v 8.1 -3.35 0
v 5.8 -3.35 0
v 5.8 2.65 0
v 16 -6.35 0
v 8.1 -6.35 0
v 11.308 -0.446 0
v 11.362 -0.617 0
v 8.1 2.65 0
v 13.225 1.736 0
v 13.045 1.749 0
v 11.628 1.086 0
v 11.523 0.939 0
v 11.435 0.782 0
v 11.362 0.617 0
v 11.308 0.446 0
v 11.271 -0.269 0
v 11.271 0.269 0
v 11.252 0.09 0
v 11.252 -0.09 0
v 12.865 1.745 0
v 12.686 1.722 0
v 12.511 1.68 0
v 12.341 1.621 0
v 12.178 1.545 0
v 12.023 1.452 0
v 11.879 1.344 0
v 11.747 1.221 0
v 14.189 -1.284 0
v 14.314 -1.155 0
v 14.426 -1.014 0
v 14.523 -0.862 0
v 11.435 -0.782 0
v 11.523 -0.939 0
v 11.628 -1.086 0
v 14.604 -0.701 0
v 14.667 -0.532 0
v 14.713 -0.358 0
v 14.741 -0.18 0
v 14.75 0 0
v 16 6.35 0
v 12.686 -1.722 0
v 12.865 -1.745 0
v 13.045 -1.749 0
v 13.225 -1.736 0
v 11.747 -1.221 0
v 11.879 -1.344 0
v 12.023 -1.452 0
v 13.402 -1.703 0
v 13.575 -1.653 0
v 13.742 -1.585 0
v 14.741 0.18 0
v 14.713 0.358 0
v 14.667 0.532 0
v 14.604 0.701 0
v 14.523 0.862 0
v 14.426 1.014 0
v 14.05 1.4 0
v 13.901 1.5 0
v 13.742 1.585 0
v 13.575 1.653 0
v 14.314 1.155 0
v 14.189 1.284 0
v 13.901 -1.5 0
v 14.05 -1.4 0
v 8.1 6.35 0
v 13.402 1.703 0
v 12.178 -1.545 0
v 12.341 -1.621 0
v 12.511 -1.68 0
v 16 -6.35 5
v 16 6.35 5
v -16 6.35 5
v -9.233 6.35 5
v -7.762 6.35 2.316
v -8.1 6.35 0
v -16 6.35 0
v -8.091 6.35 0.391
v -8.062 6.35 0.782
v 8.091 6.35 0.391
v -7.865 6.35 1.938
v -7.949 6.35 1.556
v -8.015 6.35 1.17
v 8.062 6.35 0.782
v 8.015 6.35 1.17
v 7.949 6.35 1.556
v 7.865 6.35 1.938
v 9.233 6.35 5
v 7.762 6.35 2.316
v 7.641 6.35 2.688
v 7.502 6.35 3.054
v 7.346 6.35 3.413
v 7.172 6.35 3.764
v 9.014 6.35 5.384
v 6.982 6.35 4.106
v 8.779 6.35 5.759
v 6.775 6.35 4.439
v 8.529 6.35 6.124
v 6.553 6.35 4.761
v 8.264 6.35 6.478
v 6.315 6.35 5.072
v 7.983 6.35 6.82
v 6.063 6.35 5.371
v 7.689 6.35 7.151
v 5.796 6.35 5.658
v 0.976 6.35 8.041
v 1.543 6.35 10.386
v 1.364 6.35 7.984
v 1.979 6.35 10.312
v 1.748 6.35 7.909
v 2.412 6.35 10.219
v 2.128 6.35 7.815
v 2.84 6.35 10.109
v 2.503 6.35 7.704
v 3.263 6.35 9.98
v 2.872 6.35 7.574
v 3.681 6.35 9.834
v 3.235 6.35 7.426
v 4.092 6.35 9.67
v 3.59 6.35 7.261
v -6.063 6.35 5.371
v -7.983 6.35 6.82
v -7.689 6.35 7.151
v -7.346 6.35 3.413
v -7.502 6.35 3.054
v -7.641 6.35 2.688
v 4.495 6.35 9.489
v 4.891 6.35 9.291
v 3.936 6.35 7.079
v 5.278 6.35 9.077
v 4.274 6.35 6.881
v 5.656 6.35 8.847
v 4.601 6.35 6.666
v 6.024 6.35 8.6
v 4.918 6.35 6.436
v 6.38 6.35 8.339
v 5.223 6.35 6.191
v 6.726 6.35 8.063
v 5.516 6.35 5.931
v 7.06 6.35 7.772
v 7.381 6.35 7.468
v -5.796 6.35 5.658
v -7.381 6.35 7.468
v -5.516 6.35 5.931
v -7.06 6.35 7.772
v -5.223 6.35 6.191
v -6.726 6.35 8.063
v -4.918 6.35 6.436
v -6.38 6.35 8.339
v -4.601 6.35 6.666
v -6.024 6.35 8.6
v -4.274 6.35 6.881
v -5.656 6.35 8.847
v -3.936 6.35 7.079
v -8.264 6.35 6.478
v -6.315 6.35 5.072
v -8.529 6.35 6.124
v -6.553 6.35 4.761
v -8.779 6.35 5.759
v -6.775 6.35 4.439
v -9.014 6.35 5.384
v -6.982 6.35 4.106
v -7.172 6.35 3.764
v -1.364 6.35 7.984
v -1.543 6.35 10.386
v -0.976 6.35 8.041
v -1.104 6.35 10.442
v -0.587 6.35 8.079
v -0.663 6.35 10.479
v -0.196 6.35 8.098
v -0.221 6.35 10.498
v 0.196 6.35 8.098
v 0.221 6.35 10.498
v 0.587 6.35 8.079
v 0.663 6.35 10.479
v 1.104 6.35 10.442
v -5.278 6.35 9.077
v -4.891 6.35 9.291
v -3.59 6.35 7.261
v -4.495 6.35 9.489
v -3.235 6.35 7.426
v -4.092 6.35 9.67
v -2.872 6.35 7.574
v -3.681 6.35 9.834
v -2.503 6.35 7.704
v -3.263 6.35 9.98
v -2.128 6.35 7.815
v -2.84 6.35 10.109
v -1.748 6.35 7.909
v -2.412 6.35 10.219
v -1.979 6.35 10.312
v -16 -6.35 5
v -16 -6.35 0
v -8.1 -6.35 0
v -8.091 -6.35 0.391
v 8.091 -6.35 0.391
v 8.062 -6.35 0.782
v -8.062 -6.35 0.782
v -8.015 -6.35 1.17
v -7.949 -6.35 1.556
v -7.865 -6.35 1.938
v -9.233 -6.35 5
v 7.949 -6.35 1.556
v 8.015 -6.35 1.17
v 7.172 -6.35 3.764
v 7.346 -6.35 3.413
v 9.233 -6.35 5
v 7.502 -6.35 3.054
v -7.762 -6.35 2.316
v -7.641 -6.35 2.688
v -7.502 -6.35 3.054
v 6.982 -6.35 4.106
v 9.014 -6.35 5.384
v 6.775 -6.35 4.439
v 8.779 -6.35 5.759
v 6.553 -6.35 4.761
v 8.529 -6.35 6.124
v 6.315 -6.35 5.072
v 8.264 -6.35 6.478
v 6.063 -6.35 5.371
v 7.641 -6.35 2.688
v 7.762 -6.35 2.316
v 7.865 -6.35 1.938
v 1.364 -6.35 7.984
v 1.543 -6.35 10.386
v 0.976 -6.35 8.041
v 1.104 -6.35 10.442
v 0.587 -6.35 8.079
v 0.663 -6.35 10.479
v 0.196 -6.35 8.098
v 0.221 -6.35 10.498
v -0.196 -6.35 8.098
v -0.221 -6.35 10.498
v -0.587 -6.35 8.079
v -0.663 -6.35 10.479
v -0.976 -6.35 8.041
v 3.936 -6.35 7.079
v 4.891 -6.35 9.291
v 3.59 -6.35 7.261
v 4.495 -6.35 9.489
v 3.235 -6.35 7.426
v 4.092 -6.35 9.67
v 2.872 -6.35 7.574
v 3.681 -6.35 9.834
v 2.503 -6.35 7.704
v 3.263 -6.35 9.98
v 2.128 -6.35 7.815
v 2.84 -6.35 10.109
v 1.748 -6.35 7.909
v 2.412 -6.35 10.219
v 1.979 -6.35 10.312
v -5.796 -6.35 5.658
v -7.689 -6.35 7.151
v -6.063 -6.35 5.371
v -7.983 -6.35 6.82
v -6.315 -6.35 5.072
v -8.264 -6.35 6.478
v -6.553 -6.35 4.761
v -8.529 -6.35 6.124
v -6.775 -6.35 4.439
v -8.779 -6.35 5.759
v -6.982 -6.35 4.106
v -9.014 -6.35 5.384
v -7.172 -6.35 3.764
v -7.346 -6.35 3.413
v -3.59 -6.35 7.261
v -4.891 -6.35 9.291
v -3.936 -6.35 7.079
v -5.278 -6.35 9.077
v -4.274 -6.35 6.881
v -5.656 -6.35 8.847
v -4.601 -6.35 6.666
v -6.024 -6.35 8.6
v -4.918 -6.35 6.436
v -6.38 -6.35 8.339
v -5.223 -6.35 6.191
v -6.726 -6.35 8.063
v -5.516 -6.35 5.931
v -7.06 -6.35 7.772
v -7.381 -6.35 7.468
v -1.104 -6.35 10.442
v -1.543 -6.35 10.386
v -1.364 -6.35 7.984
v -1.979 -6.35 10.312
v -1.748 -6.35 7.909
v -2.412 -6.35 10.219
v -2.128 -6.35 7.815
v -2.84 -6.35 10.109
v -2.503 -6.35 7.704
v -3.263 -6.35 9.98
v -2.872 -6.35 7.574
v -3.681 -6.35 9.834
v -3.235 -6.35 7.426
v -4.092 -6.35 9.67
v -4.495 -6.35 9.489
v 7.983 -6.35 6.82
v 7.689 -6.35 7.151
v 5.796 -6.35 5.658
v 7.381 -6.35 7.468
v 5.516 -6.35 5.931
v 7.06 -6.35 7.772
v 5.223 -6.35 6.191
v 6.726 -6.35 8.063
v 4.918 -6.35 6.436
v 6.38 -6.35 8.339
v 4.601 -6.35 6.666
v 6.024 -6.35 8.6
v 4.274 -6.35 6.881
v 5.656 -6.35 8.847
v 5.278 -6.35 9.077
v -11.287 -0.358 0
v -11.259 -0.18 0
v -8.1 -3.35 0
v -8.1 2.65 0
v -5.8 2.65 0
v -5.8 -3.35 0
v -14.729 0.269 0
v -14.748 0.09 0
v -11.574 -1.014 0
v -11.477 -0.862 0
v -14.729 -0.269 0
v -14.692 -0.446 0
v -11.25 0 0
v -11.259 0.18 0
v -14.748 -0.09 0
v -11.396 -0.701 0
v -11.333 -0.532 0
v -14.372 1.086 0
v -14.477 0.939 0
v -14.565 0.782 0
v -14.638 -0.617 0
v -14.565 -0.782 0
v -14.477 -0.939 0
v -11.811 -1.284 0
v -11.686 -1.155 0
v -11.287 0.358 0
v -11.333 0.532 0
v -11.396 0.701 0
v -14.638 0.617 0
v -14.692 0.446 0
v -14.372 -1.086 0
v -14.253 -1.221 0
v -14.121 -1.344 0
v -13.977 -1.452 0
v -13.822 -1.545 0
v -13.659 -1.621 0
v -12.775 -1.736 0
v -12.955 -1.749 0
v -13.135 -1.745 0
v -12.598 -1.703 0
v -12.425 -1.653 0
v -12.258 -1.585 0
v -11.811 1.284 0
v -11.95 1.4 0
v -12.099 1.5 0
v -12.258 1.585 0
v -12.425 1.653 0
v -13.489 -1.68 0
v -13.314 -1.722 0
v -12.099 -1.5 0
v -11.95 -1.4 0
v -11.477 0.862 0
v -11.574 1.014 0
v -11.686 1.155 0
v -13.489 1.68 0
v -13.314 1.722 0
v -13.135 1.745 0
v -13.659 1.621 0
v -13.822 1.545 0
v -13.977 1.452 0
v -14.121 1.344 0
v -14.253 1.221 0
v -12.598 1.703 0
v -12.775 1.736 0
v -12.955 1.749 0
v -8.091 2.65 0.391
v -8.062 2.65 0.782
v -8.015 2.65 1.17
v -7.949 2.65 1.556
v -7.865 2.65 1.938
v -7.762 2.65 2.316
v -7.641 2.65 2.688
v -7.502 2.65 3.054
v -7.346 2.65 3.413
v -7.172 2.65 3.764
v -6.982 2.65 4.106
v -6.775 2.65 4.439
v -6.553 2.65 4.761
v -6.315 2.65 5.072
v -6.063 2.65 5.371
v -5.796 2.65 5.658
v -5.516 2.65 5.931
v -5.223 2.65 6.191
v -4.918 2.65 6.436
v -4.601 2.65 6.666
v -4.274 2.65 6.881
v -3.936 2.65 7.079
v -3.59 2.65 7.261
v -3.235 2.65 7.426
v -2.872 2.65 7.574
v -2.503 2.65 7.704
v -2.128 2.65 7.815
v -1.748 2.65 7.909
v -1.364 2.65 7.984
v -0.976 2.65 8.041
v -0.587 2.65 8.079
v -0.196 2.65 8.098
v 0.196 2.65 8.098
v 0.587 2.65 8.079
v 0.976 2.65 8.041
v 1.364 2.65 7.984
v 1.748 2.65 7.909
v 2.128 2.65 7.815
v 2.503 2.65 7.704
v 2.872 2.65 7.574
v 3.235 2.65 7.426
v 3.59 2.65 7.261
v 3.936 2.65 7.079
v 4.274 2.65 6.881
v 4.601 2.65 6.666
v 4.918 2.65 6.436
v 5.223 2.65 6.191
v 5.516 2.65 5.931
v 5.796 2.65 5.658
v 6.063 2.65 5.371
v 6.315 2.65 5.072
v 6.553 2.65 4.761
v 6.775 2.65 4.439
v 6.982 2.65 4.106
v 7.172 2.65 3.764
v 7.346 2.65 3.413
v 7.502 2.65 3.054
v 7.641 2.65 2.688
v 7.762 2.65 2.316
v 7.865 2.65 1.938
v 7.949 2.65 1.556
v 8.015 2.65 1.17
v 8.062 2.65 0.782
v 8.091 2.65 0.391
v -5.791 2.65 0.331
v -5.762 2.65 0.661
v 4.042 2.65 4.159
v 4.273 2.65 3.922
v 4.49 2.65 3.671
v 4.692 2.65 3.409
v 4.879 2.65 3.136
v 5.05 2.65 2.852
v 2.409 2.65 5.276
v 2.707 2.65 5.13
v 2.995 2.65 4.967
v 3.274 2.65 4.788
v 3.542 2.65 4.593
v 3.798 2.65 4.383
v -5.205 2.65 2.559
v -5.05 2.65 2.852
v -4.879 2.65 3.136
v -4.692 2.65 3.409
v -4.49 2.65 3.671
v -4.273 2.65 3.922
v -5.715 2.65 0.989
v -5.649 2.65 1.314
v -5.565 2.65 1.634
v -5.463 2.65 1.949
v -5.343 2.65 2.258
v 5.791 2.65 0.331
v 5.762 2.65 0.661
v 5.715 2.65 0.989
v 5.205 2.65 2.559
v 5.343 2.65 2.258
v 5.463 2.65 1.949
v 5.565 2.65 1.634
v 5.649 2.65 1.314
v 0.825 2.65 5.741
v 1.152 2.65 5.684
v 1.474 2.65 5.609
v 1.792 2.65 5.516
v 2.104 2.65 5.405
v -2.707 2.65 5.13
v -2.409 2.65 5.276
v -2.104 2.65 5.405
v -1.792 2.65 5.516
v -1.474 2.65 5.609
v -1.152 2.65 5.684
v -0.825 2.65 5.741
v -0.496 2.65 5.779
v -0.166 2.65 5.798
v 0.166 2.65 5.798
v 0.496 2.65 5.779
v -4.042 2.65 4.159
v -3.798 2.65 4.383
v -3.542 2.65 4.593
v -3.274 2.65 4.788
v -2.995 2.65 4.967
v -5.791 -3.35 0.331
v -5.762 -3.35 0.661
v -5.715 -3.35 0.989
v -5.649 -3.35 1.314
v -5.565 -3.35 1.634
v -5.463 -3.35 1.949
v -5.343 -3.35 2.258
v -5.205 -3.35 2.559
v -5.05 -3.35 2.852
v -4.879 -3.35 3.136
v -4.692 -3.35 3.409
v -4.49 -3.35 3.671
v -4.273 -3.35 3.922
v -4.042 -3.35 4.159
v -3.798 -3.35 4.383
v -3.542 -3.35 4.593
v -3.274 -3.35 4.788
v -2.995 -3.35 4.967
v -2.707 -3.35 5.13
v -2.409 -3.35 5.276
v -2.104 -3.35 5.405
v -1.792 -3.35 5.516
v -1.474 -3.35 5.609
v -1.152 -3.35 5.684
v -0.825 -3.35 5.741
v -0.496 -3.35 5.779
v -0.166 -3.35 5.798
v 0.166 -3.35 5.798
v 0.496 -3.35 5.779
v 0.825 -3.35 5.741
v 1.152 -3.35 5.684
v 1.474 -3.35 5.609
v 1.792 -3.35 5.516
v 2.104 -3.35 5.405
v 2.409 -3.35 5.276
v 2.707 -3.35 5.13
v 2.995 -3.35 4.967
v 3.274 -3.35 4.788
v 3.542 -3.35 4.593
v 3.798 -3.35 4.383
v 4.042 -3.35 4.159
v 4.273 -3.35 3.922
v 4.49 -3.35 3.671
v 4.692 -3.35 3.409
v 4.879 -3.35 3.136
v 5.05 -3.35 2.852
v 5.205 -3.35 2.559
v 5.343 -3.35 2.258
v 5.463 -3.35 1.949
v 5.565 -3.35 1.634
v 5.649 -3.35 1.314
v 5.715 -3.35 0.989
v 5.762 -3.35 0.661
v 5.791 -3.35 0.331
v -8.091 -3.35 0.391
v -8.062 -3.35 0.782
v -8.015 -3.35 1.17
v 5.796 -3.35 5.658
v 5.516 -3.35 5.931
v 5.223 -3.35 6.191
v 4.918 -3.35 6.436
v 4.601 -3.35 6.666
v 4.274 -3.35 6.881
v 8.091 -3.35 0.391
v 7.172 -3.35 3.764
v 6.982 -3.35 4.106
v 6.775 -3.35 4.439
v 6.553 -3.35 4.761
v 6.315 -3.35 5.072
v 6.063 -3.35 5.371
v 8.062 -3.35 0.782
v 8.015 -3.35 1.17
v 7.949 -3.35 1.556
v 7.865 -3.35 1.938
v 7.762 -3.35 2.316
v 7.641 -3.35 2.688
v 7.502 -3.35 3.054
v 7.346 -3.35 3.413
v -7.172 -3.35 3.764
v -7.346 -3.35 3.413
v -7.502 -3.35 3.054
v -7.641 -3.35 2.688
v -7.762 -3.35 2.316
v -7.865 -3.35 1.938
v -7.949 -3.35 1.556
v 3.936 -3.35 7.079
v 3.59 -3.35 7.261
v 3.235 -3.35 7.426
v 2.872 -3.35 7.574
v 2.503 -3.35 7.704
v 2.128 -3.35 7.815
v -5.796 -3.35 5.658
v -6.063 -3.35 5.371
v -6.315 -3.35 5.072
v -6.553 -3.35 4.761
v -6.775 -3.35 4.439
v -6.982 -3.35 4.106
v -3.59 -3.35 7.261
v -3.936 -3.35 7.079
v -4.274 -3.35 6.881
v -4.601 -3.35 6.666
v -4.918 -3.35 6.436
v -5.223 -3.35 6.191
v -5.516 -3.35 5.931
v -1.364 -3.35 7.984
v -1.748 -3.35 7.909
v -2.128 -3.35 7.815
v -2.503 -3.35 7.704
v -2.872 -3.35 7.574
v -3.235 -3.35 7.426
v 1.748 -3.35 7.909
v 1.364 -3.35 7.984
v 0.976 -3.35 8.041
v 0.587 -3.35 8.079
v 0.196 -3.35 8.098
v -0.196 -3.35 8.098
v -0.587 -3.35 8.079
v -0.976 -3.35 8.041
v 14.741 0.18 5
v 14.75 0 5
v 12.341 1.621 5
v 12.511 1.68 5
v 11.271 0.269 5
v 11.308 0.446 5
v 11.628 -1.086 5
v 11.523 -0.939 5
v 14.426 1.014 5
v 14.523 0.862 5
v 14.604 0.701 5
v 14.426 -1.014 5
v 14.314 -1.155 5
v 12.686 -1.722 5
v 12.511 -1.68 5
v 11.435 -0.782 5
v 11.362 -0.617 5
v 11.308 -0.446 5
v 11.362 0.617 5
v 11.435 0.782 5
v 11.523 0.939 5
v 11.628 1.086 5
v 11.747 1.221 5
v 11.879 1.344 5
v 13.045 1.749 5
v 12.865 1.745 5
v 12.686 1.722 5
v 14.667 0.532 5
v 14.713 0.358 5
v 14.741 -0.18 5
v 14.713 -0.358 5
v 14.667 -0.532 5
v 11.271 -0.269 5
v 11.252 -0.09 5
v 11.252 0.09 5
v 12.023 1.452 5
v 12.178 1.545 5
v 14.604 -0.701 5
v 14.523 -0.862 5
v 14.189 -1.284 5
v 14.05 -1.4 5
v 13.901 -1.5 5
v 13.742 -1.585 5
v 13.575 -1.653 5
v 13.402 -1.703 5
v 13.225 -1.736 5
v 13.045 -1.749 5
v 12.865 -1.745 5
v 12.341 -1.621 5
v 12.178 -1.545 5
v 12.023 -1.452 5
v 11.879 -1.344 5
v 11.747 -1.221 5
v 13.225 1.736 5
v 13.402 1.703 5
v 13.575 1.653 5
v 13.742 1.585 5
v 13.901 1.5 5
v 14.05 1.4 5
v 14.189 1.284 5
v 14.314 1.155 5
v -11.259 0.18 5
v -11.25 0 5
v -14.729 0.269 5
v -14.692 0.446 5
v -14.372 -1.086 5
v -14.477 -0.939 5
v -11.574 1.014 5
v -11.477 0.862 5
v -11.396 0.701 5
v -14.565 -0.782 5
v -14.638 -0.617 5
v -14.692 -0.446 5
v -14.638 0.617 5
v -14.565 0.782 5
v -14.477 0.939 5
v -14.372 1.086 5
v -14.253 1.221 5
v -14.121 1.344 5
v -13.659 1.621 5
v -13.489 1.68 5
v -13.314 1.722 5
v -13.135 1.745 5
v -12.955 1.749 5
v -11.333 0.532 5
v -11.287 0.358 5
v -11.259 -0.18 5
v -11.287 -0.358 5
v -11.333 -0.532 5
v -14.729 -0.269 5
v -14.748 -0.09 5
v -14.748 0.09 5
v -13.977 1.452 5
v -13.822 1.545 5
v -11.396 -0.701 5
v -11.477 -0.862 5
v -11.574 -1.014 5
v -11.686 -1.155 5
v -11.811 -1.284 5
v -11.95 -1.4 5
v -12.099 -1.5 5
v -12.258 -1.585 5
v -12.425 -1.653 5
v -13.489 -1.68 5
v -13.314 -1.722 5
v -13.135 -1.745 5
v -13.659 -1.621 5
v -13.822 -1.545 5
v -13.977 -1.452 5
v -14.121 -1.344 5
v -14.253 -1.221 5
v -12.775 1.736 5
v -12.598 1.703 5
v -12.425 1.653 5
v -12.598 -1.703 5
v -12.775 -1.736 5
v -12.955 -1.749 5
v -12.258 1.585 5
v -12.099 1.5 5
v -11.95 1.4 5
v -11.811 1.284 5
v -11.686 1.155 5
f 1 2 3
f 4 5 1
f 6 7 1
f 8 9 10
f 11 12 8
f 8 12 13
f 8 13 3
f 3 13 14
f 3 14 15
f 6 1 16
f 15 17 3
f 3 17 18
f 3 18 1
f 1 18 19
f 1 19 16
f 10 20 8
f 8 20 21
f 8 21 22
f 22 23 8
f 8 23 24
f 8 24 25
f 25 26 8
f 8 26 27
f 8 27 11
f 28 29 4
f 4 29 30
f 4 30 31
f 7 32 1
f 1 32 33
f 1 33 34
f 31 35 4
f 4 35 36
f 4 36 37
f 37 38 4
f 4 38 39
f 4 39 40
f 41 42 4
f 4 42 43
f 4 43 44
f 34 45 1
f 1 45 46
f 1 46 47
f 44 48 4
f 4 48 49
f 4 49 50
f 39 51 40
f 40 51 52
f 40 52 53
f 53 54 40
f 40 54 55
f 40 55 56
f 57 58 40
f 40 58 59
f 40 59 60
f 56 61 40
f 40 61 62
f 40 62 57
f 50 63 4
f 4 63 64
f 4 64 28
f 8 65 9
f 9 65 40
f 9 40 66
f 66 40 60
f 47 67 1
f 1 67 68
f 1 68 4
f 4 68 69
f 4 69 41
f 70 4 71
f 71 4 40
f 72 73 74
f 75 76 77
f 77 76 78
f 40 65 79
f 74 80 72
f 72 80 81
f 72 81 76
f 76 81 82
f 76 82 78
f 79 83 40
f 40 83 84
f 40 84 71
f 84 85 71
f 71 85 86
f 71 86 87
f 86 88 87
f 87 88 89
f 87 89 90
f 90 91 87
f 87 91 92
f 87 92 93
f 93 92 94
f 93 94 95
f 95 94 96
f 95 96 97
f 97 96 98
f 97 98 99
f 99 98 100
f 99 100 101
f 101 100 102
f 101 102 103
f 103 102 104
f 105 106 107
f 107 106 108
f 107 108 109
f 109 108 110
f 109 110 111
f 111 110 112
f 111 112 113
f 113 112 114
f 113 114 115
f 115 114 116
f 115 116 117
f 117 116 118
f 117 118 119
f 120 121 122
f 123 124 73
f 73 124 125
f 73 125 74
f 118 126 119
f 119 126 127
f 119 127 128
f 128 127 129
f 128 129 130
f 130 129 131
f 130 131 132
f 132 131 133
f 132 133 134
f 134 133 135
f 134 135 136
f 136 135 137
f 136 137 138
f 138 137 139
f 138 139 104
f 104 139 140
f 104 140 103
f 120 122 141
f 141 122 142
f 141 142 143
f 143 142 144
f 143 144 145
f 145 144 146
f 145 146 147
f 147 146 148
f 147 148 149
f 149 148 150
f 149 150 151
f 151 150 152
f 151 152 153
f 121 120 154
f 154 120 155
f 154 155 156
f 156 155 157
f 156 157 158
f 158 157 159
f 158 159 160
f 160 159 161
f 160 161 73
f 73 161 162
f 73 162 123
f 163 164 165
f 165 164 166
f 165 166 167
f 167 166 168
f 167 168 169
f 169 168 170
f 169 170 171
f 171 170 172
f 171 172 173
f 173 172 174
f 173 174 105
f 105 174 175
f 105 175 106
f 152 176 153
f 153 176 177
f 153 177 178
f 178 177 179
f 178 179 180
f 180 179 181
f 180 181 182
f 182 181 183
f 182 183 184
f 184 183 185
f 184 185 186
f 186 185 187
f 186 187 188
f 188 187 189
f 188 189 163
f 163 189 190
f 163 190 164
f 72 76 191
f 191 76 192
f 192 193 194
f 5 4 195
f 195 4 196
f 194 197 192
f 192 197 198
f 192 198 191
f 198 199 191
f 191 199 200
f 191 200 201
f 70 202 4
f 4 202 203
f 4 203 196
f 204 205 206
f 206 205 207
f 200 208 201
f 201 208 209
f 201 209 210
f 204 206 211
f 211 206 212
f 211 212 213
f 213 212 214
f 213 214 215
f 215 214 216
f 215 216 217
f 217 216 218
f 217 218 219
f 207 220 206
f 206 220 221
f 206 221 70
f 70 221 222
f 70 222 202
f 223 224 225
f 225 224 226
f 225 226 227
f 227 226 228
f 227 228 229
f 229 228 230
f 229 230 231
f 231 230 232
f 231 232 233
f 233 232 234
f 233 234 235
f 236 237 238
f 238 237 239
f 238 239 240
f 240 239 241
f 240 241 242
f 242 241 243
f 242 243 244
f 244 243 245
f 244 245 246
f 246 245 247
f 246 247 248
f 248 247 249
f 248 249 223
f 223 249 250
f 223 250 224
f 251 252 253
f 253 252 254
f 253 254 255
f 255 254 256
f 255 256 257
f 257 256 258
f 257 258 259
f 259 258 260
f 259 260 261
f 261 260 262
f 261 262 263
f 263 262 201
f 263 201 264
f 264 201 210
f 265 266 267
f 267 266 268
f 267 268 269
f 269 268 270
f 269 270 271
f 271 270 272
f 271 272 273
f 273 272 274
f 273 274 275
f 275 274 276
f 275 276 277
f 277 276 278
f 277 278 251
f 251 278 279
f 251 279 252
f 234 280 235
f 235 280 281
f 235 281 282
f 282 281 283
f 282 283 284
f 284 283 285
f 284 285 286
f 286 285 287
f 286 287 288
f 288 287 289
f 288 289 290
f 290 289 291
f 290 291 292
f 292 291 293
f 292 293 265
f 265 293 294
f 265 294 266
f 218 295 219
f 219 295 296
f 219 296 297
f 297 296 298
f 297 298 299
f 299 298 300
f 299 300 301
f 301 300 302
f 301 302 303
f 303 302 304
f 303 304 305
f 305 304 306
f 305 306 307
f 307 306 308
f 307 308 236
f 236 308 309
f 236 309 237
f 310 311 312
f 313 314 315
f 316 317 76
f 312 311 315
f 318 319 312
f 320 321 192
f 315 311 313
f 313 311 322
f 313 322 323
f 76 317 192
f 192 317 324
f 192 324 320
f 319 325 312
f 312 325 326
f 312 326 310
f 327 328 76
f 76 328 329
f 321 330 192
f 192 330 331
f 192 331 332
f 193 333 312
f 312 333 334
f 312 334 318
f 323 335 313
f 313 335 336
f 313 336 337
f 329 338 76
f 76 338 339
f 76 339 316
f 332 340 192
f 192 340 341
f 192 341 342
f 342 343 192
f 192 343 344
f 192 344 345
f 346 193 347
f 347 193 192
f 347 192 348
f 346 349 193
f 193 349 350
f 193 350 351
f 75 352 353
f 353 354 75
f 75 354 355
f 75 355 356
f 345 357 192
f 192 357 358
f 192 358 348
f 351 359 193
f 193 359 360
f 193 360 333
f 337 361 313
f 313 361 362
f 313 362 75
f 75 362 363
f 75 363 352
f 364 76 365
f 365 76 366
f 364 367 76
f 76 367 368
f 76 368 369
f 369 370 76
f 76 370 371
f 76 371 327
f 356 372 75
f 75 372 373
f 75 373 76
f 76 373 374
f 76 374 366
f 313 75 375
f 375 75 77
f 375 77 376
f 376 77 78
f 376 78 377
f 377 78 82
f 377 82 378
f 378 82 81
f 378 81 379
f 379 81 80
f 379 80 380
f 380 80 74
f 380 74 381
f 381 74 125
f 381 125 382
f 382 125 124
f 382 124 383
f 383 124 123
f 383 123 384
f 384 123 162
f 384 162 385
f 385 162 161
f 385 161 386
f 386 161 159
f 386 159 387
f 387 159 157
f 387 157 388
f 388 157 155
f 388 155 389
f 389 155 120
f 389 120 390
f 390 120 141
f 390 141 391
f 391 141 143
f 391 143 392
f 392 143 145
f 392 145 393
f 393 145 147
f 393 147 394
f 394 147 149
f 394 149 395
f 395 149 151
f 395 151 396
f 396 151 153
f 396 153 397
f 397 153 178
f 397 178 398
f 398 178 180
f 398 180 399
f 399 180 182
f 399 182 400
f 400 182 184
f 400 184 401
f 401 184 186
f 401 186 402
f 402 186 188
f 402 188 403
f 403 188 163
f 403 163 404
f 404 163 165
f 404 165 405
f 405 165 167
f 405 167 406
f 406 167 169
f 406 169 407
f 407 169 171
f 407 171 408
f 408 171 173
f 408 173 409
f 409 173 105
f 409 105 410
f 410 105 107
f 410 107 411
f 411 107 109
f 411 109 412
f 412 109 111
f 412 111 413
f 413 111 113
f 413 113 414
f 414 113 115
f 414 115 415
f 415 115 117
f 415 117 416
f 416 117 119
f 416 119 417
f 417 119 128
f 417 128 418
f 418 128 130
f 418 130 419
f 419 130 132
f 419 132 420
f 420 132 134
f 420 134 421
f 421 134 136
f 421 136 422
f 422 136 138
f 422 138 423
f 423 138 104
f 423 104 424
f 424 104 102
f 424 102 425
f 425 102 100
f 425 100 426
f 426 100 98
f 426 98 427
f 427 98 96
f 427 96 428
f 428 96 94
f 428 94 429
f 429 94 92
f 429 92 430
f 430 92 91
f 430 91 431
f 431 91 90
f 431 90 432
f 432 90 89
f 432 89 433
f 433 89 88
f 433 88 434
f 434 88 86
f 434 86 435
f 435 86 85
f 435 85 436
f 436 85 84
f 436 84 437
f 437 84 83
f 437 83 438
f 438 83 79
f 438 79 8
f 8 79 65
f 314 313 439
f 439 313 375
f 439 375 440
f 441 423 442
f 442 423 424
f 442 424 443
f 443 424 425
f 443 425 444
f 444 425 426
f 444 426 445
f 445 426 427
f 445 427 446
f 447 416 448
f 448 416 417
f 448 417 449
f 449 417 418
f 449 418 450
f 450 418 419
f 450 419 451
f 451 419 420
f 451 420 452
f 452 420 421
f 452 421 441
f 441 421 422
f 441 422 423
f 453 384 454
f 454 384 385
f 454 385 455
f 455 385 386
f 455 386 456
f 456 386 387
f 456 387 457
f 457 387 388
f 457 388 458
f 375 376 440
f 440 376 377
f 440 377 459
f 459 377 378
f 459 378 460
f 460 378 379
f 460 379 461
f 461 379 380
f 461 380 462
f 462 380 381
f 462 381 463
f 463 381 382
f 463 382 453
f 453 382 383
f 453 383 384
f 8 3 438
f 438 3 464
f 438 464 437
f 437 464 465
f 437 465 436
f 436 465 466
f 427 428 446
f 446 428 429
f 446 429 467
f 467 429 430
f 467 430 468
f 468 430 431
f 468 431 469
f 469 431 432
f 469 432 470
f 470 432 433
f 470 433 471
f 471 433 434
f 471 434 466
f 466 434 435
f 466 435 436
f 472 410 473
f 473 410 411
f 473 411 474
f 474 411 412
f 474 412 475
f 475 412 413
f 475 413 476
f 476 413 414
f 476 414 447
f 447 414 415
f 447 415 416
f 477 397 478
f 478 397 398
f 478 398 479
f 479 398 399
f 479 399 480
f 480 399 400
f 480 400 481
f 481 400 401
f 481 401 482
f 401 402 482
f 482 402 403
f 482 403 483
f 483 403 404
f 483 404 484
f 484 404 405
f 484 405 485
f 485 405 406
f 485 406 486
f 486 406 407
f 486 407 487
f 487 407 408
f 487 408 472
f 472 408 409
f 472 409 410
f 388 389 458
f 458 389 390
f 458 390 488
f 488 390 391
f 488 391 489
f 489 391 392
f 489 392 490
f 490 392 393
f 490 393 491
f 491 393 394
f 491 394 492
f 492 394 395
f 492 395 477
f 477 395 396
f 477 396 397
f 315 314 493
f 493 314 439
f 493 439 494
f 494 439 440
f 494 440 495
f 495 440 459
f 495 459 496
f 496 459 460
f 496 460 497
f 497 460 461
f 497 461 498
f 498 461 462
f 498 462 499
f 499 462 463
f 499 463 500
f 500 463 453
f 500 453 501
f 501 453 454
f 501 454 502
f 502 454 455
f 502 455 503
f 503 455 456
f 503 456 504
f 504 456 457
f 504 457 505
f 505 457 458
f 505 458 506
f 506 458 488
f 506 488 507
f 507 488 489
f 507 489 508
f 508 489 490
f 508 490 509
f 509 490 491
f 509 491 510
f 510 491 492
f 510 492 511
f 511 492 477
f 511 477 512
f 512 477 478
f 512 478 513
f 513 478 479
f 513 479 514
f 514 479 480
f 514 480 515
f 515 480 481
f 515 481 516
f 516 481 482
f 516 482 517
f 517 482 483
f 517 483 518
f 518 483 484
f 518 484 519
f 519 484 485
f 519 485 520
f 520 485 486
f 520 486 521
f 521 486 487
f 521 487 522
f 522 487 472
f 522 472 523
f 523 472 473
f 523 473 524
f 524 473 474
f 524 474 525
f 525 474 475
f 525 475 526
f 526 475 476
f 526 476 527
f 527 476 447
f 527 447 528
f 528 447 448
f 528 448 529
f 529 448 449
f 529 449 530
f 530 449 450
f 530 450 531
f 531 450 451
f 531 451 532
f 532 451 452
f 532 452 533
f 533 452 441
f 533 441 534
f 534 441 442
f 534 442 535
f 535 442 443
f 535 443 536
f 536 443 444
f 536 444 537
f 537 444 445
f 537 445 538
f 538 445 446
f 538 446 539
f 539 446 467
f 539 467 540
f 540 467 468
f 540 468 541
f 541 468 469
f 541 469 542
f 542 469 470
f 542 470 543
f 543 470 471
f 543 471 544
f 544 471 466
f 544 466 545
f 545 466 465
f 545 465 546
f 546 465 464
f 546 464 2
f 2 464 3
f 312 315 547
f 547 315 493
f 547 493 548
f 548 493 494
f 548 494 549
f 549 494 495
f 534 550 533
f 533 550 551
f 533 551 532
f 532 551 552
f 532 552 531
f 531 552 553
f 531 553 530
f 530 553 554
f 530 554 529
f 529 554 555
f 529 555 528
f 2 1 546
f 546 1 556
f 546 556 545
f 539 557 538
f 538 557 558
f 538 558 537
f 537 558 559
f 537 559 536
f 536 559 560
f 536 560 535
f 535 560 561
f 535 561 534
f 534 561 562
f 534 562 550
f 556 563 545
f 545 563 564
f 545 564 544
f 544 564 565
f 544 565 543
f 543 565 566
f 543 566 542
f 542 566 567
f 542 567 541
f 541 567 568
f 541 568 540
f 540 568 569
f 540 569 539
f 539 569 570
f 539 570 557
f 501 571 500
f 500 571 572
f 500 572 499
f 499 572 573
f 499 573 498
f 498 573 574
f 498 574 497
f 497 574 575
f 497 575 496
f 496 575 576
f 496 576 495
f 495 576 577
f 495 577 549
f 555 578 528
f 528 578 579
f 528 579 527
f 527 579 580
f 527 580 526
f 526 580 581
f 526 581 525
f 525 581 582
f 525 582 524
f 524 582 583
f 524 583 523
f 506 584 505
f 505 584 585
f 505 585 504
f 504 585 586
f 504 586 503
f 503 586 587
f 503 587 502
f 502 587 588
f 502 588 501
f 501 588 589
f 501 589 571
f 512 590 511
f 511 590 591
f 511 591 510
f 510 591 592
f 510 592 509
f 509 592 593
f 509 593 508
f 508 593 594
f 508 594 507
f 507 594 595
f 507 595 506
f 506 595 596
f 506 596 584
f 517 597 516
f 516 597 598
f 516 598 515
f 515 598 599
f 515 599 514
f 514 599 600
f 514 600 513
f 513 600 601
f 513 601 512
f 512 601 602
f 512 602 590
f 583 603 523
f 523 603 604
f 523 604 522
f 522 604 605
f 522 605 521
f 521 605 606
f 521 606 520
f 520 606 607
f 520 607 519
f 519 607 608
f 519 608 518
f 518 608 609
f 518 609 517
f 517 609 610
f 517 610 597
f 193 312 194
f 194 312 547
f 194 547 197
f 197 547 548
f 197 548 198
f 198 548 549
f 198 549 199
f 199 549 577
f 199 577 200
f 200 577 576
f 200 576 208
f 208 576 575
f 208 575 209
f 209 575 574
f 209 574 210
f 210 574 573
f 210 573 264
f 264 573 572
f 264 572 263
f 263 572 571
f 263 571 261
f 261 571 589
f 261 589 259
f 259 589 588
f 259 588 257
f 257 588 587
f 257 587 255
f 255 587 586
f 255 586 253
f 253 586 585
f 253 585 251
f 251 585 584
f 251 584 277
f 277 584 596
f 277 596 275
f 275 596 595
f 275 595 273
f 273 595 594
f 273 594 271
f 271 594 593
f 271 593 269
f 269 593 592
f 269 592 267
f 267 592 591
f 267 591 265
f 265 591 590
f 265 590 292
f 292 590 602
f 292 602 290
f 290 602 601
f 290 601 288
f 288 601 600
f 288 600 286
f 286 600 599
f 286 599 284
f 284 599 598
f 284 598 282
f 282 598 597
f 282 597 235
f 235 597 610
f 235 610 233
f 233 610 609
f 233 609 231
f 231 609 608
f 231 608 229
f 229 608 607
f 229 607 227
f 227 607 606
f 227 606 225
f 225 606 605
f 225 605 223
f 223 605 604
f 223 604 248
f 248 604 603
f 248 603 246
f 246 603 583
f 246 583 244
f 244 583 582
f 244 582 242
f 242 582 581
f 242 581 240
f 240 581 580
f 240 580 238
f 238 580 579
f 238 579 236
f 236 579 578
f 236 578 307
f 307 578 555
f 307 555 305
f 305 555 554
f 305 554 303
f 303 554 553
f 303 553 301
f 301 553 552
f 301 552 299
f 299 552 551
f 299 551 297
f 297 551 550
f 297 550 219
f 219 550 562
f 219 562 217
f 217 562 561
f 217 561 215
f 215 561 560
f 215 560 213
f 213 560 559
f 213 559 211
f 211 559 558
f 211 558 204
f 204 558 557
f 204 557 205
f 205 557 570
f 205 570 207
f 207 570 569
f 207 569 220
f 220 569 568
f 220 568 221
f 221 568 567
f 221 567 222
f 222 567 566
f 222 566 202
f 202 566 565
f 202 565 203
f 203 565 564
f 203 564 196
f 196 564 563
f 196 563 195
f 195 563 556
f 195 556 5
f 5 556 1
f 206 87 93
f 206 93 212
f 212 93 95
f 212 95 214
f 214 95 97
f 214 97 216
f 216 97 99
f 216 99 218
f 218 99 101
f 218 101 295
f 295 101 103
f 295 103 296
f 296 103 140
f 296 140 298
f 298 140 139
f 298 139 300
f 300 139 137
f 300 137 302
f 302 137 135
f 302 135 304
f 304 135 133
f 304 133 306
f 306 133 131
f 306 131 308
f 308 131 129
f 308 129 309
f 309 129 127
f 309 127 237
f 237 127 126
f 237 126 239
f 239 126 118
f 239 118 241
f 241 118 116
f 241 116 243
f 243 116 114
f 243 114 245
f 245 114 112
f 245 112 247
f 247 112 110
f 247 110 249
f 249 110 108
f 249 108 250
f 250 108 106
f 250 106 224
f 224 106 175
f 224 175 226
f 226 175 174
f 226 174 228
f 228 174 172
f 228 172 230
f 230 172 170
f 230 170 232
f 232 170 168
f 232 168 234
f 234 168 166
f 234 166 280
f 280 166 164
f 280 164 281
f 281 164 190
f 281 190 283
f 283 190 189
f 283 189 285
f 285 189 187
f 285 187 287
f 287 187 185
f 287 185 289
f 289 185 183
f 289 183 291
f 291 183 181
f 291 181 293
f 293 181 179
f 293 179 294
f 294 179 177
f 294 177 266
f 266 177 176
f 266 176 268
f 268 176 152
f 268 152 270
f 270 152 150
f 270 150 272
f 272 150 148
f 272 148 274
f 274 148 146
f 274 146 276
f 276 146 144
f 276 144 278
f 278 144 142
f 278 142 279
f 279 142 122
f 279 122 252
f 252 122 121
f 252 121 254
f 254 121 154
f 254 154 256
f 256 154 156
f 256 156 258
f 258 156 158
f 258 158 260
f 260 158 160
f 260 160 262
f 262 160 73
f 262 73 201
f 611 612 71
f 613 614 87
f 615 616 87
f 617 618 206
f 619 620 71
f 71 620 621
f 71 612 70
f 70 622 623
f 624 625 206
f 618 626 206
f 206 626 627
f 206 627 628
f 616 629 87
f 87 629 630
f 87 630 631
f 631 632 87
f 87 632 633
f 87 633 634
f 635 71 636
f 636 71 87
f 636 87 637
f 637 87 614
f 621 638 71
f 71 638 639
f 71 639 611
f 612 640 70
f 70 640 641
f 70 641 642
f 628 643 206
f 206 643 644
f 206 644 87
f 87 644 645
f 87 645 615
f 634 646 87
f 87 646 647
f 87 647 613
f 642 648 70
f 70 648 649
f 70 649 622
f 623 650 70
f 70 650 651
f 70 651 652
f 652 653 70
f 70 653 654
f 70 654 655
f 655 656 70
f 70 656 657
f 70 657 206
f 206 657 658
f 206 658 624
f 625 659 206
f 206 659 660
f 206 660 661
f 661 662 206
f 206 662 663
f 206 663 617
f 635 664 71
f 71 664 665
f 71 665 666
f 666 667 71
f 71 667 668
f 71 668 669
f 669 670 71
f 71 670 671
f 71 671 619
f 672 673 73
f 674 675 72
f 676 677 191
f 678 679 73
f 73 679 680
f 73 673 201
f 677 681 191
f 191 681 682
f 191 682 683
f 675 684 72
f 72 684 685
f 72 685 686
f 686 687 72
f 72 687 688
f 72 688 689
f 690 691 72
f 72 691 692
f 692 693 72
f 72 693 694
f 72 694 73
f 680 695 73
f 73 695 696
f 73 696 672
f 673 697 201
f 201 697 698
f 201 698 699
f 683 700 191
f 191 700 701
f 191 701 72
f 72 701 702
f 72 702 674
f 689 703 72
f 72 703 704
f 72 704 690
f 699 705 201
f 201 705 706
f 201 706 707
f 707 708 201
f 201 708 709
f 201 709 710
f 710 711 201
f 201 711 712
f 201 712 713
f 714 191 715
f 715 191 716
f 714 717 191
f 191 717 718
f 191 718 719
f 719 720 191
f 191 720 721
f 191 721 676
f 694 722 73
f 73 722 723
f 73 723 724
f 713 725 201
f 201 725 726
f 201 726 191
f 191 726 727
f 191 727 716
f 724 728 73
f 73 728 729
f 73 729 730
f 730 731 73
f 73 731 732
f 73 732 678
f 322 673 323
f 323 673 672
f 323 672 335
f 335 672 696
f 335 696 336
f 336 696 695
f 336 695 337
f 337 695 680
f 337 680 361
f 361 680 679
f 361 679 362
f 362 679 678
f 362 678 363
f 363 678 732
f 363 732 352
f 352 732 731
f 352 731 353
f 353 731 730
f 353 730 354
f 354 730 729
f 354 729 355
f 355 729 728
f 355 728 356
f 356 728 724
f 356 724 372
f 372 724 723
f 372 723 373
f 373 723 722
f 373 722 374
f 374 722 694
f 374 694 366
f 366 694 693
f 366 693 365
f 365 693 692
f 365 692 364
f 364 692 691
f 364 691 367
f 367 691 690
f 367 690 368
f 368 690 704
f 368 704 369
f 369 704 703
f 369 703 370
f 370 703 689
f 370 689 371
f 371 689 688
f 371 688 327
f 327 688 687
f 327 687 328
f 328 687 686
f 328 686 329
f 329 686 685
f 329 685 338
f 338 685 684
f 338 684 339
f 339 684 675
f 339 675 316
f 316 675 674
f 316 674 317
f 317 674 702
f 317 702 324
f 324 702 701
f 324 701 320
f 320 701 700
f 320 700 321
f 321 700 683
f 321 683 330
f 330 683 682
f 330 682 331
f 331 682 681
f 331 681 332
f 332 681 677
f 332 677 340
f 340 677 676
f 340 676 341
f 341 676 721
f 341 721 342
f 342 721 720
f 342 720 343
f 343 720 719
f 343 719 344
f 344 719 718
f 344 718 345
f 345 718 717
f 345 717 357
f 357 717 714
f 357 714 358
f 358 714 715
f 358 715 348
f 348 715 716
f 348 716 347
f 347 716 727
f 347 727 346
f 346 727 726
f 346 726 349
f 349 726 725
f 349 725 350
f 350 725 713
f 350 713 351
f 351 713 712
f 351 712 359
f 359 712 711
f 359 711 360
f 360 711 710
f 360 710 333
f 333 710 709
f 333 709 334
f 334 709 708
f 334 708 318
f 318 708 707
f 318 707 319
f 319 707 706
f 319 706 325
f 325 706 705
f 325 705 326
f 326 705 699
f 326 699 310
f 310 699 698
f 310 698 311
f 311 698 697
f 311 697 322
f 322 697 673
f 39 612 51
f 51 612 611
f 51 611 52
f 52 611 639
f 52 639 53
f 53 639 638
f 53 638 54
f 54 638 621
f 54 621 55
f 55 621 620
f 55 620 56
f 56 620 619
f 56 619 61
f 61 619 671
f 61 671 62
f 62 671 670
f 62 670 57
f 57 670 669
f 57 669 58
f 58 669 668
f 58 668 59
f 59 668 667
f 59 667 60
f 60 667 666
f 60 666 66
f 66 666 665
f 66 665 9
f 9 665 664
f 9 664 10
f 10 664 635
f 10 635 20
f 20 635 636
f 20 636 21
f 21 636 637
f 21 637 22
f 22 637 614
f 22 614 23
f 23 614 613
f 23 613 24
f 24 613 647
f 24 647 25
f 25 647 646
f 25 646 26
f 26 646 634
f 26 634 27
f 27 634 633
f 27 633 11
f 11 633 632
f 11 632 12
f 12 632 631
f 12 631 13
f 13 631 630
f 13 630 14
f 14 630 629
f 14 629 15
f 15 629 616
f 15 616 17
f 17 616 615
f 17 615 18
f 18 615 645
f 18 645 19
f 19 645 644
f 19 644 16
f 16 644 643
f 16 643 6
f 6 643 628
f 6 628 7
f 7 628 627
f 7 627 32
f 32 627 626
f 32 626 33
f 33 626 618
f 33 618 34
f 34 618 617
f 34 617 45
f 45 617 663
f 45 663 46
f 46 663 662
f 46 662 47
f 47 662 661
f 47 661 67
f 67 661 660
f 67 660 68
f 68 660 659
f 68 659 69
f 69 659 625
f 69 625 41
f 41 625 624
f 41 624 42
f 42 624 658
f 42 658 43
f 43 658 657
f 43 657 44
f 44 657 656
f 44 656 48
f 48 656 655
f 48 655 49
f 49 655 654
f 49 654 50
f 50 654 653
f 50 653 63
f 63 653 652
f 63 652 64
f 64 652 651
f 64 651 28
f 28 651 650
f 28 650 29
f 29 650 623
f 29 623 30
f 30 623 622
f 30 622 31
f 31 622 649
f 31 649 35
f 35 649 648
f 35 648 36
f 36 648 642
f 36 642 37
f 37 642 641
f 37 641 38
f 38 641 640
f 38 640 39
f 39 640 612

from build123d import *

# Parameters (mm, degrees)
SKETCH1_W           = 32
SKETCH1_H           = 12.7
BOSS_EXTRUDE1_DEPTH = 12
CUT_EXTRUDE1_DEPTH  = 13.7
SKETCH5_R           = 1.75
CUT_EXTRUDE2_DEPTH  = 6


with BuildPart() as part:
    # Sketch1 → Boss-Extrude1 (new body)
    with BuildSketch(Plane.XY):
        Rectangle(SKETCH1_W, SKETCH1_H)
    extrude(amount=BOSS_EXTRUDE1_DEPTH)

    # Sketch3 → Cut-Revolve1 (revolve, cut)
    with BuildSketch(Plane(origin=(0, 0, 0), x_dir=(0, 0, -1), z_dir=(1, 0, 0))):
        Polygon((0, 6.35), (-8.1, 6.35), (-8.1, 2.65), (-5.8, 2.65), (-5.8, -3.35), (-8.1, -3.35), (-8.1, -6.35), (0, -6.35), align=None)
    revolve(axis=Axis((0, 6.35, 0), (0, -1, 0)), mode=Mode.SUBTRACT)

    # Sketch4 → Cut-Extrude1 (cut, through all)
    with BuildSketch(Plane(origin=(0, 6.35, 0), x_dir=(1, 0, 0), z_dir=(0, 1, 0))):
        with BuildLine():
            Line((-16, -5), (-9.233092656, -5))
            ThreePointArc((-9.233092656, -5), (0, -10.5), (9.233092656, -5))
            Line((9.233092656, -5), (16, -5))
            Line((16, -5), (16, -15))
            Line((16, -15), (-16, -15))
            Line((-16, -15), (-16, -5))
        make_face()
    extrude(amount=-CUT_EXTRUDE1_DEPTH, mode=Mode.SUBTRACT)

    # Sketch5 → Cut-Extrude2 (cut, through all)
    with BuildSketch(Plane.XY.offset(5)):
        with Locations((-13, 0)):
            Circle(SKETCH5_R)
        with Locations((13, 0)):
            Circle(SKETCH5_R)
    extrude(amount=-CUT_EXTRUDE2_DEPTH, mode=Mode.SUBTRACT)


solid = part.part
